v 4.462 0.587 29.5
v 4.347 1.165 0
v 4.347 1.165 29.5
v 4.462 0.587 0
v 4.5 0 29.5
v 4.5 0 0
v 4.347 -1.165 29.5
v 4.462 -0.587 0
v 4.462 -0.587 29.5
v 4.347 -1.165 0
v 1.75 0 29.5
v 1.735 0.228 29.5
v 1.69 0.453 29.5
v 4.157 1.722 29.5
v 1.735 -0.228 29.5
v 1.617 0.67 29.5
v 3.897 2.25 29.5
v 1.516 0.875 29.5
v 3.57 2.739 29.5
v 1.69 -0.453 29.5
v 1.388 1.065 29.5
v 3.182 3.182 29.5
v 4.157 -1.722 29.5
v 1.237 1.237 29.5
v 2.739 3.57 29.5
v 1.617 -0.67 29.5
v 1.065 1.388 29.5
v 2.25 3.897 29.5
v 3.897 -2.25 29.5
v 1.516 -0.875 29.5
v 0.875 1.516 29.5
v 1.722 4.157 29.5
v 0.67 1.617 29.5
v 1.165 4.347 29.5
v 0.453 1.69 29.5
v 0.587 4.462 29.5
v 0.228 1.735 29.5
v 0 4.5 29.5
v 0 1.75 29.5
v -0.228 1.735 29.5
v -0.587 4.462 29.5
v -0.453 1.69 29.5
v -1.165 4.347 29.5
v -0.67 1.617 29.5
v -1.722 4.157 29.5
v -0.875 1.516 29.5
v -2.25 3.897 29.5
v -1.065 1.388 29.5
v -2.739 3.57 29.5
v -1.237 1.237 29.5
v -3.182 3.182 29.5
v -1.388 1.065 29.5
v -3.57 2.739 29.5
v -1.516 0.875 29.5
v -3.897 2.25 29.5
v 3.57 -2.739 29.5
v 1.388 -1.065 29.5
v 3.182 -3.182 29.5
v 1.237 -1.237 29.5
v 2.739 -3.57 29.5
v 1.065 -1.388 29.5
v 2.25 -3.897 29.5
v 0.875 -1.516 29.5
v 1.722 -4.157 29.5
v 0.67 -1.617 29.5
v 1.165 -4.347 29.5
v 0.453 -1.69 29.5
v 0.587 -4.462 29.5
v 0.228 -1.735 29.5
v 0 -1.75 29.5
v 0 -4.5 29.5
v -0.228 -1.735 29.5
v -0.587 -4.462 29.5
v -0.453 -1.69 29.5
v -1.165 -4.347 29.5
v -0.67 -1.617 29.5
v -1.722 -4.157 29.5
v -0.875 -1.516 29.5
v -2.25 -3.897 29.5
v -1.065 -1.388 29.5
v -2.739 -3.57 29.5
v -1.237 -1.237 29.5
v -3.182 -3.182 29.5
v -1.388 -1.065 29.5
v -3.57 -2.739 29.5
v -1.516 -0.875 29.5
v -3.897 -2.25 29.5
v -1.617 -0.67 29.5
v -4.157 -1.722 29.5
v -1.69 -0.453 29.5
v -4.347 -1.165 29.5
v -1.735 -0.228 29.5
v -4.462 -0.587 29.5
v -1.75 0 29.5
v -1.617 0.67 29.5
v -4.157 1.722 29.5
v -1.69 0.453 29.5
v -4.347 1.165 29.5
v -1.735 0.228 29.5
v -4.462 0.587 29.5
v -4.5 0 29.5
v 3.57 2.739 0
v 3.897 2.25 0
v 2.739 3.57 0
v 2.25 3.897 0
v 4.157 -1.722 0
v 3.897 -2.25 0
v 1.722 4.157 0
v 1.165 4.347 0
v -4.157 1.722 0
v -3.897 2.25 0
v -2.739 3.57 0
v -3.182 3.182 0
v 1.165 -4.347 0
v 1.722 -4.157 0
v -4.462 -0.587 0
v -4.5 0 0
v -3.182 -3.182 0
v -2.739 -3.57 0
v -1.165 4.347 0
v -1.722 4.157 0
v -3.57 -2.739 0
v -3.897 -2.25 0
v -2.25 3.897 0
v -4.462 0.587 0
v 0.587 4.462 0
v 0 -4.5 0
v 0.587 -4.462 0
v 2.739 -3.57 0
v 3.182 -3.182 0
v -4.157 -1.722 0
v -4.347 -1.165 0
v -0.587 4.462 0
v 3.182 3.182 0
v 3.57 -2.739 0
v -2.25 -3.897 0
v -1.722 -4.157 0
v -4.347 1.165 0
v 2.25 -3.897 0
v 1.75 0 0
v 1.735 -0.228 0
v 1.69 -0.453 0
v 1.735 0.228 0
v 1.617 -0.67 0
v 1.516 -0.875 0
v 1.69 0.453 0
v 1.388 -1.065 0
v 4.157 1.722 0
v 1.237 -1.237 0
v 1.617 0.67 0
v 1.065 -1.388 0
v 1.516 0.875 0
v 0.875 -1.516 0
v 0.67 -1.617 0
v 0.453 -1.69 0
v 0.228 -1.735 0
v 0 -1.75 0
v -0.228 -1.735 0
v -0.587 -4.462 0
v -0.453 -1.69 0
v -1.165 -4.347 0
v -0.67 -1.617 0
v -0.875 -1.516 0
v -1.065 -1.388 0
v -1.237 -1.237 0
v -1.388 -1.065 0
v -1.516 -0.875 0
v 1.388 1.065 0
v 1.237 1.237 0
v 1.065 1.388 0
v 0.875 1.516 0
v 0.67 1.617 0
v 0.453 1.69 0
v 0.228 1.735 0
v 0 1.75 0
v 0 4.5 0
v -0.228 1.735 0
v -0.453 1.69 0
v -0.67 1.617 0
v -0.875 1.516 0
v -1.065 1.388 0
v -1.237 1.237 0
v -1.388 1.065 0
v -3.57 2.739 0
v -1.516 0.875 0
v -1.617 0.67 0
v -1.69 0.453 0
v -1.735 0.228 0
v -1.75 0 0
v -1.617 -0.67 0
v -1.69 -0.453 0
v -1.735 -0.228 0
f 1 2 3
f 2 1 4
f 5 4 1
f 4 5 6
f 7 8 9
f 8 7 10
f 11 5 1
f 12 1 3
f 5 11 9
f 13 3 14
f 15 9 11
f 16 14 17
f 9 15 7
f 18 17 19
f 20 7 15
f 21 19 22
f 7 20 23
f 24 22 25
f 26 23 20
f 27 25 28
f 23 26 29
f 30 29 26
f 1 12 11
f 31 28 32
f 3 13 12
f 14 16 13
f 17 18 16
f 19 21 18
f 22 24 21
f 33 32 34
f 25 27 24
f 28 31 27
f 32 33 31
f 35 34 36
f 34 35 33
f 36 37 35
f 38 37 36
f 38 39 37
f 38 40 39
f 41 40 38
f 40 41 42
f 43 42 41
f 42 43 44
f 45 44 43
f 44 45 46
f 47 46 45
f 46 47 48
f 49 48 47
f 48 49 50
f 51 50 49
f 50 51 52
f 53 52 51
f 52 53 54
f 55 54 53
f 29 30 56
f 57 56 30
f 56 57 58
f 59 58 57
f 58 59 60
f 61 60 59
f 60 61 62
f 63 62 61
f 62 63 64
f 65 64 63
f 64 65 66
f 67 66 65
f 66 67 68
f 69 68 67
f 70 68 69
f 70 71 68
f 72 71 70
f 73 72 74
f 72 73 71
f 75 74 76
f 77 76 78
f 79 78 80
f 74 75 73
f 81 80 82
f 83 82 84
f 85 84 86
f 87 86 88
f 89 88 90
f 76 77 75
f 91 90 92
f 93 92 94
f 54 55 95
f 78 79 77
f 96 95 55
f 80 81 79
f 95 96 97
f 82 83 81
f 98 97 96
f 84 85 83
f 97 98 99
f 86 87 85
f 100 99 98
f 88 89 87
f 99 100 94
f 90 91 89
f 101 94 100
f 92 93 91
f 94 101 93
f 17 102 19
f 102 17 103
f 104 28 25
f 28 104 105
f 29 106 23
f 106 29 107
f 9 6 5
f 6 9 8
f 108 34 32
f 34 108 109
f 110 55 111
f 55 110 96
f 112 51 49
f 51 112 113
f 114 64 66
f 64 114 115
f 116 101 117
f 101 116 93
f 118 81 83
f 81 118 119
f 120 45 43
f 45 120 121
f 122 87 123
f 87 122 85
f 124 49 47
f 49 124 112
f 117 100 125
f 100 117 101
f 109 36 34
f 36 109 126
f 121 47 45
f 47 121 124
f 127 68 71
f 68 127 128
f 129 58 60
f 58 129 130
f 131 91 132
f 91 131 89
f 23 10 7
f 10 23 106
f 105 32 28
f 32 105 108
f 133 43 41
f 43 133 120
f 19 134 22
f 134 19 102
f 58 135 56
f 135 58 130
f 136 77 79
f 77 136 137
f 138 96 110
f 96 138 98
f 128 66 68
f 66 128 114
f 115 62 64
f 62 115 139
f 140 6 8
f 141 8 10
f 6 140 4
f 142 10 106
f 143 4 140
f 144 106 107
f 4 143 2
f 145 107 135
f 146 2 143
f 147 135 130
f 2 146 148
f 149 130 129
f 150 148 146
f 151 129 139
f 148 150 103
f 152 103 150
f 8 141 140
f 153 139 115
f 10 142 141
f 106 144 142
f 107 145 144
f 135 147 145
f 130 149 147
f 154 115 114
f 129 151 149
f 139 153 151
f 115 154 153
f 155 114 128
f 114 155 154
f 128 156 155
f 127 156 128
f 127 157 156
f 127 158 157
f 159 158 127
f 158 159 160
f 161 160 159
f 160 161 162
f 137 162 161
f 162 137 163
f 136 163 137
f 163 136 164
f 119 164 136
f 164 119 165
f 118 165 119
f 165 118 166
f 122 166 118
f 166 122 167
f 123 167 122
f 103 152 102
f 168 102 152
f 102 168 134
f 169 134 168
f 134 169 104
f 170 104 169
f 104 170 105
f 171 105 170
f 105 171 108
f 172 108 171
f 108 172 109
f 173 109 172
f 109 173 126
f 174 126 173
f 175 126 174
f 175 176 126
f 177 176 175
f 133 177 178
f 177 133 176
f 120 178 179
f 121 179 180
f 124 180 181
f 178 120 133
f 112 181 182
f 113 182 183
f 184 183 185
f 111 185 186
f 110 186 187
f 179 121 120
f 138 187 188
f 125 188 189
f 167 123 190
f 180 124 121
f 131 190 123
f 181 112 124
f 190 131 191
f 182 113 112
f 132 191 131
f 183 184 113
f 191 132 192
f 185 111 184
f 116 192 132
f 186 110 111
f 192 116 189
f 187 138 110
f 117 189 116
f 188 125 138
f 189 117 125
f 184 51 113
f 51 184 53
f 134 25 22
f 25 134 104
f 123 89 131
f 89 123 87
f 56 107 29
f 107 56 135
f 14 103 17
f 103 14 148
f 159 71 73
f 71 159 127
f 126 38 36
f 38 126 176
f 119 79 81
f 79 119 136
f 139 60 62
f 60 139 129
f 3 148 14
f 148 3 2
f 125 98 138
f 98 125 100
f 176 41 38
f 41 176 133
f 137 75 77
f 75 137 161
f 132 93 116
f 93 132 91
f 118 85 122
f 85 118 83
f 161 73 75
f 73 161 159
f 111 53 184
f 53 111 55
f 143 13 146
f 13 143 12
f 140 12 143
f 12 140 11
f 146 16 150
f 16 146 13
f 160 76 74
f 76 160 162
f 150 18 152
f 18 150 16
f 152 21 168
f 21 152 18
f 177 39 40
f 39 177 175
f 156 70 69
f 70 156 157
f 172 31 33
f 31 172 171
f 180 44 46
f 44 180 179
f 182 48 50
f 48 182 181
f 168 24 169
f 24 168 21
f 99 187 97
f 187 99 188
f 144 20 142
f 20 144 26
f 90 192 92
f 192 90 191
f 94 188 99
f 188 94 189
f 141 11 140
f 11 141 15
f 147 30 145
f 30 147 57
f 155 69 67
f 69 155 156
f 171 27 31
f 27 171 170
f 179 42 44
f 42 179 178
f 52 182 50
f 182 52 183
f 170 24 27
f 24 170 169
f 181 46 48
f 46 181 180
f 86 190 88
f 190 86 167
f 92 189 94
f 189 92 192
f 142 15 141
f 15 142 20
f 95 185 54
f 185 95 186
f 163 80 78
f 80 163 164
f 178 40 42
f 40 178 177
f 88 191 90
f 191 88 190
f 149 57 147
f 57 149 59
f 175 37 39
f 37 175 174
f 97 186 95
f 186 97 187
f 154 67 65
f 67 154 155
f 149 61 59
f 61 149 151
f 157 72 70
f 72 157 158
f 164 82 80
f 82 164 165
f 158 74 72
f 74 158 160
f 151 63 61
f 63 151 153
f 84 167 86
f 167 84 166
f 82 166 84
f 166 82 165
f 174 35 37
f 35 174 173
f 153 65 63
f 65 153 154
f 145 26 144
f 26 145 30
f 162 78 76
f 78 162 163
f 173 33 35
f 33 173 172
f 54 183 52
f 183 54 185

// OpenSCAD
// Gen-DM — frame standoff tube between stator and an endbell, on each M3 frame rod (outside rotor OD).
// Print x4. Height = frame_standoff_h (rotor + steel + hub + collar + running clearance).
include <parameters.scad>;
$fn = 48;
difference() {
    cylinder(d=standoff_od, h=frame_standoff_h);
    translate([0, 0, -0.1]) cylinder(d=m3_clear, h=frame_standoff_h + 0.2);
}
